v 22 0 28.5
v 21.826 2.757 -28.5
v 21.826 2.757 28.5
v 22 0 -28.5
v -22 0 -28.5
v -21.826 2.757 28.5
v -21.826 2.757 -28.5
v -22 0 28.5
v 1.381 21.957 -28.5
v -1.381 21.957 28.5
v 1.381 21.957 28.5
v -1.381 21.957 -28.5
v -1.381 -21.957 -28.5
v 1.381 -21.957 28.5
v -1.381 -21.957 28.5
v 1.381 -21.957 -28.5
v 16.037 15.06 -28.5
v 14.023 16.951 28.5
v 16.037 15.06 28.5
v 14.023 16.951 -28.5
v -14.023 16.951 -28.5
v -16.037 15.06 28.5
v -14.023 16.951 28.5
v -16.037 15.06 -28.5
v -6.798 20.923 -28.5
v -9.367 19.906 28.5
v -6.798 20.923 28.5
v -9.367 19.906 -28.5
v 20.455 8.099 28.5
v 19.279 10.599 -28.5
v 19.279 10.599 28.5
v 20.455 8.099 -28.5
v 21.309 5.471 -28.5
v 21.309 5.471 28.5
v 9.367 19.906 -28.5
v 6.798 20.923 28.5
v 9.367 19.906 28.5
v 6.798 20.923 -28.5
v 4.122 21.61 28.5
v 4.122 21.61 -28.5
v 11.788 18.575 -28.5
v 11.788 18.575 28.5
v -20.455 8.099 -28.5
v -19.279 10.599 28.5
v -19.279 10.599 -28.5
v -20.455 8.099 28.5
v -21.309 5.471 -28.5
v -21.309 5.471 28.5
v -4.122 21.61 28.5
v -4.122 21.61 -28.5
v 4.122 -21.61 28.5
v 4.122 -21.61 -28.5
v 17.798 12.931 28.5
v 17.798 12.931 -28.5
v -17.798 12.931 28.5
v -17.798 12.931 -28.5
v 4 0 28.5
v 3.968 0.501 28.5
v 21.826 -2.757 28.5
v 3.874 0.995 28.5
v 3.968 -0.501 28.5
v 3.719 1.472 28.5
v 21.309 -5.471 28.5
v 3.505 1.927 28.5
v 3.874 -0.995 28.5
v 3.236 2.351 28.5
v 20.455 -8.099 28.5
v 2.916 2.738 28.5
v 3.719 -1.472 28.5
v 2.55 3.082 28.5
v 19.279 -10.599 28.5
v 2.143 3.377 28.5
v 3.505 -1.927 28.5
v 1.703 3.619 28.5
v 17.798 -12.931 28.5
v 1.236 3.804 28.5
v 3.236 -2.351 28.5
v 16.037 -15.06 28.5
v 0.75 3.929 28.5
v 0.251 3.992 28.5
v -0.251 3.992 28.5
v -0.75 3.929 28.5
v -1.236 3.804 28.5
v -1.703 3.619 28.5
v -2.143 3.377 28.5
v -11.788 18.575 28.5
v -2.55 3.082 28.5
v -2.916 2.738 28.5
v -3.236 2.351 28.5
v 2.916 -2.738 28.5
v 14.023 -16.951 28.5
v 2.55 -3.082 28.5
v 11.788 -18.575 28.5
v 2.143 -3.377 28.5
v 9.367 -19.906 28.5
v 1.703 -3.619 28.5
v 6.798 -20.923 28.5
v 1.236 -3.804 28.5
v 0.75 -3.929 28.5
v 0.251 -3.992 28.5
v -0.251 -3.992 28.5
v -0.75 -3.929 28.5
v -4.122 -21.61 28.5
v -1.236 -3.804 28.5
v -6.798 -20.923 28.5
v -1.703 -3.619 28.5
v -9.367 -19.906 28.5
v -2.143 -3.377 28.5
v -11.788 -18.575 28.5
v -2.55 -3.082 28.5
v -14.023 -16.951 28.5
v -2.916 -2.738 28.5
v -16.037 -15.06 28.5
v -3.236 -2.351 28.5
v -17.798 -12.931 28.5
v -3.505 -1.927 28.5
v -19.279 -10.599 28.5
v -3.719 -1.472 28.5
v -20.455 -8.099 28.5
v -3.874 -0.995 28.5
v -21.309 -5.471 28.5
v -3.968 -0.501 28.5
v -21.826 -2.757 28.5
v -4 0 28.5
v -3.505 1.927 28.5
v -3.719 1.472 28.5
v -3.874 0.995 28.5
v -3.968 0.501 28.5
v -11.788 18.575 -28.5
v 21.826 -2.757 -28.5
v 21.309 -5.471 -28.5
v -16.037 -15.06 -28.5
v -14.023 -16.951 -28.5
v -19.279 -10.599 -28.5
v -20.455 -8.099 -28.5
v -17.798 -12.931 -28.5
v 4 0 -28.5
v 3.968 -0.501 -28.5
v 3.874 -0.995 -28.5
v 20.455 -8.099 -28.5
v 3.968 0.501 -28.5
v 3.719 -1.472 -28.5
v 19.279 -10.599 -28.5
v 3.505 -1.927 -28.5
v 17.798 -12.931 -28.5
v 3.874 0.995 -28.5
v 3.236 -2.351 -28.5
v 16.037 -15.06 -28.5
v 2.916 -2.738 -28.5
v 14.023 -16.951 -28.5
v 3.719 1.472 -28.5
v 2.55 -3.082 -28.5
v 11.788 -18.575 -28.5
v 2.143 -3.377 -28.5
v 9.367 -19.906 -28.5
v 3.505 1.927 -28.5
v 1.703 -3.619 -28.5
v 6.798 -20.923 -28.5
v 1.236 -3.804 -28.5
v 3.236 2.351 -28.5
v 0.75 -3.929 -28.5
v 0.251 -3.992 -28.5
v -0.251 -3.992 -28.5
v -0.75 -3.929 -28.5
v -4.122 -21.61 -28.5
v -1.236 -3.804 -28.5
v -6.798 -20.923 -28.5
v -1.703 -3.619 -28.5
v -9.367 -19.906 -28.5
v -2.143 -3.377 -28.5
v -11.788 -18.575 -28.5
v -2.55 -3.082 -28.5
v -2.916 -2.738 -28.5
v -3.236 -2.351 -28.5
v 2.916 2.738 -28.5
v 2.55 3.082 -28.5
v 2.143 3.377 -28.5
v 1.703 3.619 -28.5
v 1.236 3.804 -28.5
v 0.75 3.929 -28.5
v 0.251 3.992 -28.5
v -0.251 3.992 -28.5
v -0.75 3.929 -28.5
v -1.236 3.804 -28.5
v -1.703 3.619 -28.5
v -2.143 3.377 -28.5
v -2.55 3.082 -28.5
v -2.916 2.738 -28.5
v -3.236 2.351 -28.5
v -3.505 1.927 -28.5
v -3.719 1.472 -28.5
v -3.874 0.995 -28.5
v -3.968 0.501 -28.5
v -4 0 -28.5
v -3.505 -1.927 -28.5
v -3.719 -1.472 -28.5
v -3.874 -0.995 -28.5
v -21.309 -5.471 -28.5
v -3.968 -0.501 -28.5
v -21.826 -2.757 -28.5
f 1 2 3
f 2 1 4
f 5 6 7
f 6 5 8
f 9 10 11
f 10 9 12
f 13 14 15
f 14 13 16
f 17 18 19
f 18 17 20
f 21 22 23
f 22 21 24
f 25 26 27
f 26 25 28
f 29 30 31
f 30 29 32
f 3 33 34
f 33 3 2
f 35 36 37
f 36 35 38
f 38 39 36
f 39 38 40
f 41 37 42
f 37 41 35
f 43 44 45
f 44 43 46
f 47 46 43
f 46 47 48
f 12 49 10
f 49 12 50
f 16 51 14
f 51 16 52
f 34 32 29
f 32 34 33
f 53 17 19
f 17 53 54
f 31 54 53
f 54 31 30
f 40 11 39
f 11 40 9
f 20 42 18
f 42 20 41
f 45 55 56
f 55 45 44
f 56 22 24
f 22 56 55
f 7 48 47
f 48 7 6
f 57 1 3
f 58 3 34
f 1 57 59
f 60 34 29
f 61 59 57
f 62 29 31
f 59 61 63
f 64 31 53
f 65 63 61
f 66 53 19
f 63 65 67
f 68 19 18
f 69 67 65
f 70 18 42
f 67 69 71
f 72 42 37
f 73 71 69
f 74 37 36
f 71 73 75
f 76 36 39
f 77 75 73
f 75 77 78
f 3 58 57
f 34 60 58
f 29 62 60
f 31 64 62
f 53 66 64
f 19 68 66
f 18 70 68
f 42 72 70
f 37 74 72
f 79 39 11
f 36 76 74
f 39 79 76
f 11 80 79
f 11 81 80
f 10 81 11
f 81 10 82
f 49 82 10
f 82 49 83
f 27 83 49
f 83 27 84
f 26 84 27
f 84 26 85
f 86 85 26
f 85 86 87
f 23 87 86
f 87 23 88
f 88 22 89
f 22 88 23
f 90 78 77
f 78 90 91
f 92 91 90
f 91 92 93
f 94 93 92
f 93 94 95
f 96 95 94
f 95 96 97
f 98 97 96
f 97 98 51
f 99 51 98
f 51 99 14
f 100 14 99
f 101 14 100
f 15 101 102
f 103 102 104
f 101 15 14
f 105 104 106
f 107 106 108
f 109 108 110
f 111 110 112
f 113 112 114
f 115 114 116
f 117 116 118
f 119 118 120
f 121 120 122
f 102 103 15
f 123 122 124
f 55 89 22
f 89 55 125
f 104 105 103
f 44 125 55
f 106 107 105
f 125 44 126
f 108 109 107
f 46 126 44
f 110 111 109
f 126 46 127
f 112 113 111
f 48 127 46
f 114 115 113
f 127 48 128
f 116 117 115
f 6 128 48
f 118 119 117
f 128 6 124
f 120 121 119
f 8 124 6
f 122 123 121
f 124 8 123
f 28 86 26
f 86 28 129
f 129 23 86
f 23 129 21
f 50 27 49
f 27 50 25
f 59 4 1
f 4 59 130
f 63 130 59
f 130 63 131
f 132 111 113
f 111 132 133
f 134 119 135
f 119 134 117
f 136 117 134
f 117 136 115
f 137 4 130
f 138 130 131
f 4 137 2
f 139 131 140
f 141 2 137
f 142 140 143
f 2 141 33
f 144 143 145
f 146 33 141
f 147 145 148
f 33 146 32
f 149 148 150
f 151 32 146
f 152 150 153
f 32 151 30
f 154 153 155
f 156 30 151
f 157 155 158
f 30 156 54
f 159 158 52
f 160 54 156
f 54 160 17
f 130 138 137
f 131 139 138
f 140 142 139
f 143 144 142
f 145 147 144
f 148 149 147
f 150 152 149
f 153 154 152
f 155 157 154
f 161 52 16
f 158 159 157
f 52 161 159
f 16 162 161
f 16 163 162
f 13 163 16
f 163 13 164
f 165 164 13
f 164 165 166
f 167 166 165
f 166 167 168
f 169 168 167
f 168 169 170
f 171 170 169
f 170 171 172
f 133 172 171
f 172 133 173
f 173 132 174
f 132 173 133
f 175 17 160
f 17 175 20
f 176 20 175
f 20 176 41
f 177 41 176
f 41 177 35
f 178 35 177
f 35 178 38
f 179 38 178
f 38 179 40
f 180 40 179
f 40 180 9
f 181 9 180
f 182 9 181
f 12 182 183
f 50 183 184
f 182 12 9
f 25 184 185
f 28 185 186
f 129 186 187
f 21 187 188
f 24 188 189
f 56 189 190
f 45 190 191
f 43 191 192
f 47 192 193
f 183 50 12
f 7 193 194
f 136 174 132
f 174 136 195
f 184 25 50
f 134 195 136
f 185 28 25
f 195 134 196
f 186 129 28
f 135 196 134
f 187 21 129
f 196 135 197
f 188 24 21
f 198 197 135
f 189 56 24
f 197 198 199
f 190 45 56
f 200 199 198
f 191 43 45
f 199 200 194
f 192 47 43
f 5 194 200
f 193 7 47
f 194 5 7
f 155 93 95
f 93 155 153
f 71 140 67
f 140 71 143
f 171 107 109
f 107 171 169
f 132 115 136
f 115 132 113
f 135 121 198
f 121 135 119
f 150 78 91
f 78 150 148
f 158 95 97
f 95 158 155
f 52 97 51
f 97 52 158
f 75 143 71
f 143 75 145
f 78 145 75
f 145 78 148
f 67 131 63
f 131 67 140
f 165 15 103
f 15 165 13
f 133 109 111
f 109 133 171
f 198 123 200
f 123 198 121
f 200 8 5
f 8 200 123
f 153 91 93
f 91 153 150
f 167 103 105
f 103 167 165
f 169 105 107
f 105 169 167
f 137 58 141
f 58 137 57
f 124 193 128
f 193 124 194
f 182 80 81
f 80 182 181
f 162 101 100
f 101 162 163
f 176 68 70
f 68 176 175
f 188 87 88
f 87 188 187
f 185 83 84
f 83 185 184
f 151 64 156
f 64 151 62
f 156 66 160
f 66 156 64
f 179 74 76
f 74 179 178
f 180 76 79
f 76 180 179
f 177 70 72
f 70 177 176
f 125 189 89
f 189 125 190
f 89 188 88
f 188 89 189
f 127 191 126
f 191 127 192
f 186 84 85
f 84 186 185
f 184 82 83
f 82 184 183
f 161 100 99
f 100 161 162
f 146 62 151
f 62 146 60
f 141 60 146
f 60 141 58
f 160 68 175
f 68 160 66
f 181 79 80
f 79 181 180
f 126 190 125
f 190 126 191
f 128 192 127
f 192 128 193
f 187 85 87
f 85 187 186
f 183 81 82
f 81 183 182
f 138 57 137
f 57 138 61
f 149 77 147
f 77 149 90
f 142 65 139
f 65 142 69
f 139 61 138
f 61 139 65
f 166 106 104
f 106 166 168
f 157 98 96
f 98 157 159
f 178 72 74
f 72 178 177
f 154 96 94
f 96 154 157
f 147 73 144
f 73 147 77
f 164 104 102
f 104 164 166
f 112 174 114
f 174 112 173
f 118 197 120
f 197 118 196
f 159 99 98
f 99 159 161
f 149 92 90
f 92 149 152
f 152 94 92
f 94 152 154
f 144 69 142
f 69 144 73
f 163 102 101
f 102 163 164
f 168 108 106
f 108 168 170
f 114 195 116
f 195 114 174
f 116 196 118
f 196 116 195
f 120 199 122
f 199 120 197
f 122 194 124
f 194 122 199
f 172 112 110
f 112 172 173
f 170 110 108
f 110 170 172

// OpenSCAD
$fn = 50;


difference() {
	union() {
		translate(v = [0, 0, -28.5000000000]) {
			cylinder(h = 57, r = 22.0000000000);
		}
	}
	union() {
		translate(v = [0, 0, -100.0000000000]) {
			cylinder(h = 200, r = 4);
		}
	}
}
